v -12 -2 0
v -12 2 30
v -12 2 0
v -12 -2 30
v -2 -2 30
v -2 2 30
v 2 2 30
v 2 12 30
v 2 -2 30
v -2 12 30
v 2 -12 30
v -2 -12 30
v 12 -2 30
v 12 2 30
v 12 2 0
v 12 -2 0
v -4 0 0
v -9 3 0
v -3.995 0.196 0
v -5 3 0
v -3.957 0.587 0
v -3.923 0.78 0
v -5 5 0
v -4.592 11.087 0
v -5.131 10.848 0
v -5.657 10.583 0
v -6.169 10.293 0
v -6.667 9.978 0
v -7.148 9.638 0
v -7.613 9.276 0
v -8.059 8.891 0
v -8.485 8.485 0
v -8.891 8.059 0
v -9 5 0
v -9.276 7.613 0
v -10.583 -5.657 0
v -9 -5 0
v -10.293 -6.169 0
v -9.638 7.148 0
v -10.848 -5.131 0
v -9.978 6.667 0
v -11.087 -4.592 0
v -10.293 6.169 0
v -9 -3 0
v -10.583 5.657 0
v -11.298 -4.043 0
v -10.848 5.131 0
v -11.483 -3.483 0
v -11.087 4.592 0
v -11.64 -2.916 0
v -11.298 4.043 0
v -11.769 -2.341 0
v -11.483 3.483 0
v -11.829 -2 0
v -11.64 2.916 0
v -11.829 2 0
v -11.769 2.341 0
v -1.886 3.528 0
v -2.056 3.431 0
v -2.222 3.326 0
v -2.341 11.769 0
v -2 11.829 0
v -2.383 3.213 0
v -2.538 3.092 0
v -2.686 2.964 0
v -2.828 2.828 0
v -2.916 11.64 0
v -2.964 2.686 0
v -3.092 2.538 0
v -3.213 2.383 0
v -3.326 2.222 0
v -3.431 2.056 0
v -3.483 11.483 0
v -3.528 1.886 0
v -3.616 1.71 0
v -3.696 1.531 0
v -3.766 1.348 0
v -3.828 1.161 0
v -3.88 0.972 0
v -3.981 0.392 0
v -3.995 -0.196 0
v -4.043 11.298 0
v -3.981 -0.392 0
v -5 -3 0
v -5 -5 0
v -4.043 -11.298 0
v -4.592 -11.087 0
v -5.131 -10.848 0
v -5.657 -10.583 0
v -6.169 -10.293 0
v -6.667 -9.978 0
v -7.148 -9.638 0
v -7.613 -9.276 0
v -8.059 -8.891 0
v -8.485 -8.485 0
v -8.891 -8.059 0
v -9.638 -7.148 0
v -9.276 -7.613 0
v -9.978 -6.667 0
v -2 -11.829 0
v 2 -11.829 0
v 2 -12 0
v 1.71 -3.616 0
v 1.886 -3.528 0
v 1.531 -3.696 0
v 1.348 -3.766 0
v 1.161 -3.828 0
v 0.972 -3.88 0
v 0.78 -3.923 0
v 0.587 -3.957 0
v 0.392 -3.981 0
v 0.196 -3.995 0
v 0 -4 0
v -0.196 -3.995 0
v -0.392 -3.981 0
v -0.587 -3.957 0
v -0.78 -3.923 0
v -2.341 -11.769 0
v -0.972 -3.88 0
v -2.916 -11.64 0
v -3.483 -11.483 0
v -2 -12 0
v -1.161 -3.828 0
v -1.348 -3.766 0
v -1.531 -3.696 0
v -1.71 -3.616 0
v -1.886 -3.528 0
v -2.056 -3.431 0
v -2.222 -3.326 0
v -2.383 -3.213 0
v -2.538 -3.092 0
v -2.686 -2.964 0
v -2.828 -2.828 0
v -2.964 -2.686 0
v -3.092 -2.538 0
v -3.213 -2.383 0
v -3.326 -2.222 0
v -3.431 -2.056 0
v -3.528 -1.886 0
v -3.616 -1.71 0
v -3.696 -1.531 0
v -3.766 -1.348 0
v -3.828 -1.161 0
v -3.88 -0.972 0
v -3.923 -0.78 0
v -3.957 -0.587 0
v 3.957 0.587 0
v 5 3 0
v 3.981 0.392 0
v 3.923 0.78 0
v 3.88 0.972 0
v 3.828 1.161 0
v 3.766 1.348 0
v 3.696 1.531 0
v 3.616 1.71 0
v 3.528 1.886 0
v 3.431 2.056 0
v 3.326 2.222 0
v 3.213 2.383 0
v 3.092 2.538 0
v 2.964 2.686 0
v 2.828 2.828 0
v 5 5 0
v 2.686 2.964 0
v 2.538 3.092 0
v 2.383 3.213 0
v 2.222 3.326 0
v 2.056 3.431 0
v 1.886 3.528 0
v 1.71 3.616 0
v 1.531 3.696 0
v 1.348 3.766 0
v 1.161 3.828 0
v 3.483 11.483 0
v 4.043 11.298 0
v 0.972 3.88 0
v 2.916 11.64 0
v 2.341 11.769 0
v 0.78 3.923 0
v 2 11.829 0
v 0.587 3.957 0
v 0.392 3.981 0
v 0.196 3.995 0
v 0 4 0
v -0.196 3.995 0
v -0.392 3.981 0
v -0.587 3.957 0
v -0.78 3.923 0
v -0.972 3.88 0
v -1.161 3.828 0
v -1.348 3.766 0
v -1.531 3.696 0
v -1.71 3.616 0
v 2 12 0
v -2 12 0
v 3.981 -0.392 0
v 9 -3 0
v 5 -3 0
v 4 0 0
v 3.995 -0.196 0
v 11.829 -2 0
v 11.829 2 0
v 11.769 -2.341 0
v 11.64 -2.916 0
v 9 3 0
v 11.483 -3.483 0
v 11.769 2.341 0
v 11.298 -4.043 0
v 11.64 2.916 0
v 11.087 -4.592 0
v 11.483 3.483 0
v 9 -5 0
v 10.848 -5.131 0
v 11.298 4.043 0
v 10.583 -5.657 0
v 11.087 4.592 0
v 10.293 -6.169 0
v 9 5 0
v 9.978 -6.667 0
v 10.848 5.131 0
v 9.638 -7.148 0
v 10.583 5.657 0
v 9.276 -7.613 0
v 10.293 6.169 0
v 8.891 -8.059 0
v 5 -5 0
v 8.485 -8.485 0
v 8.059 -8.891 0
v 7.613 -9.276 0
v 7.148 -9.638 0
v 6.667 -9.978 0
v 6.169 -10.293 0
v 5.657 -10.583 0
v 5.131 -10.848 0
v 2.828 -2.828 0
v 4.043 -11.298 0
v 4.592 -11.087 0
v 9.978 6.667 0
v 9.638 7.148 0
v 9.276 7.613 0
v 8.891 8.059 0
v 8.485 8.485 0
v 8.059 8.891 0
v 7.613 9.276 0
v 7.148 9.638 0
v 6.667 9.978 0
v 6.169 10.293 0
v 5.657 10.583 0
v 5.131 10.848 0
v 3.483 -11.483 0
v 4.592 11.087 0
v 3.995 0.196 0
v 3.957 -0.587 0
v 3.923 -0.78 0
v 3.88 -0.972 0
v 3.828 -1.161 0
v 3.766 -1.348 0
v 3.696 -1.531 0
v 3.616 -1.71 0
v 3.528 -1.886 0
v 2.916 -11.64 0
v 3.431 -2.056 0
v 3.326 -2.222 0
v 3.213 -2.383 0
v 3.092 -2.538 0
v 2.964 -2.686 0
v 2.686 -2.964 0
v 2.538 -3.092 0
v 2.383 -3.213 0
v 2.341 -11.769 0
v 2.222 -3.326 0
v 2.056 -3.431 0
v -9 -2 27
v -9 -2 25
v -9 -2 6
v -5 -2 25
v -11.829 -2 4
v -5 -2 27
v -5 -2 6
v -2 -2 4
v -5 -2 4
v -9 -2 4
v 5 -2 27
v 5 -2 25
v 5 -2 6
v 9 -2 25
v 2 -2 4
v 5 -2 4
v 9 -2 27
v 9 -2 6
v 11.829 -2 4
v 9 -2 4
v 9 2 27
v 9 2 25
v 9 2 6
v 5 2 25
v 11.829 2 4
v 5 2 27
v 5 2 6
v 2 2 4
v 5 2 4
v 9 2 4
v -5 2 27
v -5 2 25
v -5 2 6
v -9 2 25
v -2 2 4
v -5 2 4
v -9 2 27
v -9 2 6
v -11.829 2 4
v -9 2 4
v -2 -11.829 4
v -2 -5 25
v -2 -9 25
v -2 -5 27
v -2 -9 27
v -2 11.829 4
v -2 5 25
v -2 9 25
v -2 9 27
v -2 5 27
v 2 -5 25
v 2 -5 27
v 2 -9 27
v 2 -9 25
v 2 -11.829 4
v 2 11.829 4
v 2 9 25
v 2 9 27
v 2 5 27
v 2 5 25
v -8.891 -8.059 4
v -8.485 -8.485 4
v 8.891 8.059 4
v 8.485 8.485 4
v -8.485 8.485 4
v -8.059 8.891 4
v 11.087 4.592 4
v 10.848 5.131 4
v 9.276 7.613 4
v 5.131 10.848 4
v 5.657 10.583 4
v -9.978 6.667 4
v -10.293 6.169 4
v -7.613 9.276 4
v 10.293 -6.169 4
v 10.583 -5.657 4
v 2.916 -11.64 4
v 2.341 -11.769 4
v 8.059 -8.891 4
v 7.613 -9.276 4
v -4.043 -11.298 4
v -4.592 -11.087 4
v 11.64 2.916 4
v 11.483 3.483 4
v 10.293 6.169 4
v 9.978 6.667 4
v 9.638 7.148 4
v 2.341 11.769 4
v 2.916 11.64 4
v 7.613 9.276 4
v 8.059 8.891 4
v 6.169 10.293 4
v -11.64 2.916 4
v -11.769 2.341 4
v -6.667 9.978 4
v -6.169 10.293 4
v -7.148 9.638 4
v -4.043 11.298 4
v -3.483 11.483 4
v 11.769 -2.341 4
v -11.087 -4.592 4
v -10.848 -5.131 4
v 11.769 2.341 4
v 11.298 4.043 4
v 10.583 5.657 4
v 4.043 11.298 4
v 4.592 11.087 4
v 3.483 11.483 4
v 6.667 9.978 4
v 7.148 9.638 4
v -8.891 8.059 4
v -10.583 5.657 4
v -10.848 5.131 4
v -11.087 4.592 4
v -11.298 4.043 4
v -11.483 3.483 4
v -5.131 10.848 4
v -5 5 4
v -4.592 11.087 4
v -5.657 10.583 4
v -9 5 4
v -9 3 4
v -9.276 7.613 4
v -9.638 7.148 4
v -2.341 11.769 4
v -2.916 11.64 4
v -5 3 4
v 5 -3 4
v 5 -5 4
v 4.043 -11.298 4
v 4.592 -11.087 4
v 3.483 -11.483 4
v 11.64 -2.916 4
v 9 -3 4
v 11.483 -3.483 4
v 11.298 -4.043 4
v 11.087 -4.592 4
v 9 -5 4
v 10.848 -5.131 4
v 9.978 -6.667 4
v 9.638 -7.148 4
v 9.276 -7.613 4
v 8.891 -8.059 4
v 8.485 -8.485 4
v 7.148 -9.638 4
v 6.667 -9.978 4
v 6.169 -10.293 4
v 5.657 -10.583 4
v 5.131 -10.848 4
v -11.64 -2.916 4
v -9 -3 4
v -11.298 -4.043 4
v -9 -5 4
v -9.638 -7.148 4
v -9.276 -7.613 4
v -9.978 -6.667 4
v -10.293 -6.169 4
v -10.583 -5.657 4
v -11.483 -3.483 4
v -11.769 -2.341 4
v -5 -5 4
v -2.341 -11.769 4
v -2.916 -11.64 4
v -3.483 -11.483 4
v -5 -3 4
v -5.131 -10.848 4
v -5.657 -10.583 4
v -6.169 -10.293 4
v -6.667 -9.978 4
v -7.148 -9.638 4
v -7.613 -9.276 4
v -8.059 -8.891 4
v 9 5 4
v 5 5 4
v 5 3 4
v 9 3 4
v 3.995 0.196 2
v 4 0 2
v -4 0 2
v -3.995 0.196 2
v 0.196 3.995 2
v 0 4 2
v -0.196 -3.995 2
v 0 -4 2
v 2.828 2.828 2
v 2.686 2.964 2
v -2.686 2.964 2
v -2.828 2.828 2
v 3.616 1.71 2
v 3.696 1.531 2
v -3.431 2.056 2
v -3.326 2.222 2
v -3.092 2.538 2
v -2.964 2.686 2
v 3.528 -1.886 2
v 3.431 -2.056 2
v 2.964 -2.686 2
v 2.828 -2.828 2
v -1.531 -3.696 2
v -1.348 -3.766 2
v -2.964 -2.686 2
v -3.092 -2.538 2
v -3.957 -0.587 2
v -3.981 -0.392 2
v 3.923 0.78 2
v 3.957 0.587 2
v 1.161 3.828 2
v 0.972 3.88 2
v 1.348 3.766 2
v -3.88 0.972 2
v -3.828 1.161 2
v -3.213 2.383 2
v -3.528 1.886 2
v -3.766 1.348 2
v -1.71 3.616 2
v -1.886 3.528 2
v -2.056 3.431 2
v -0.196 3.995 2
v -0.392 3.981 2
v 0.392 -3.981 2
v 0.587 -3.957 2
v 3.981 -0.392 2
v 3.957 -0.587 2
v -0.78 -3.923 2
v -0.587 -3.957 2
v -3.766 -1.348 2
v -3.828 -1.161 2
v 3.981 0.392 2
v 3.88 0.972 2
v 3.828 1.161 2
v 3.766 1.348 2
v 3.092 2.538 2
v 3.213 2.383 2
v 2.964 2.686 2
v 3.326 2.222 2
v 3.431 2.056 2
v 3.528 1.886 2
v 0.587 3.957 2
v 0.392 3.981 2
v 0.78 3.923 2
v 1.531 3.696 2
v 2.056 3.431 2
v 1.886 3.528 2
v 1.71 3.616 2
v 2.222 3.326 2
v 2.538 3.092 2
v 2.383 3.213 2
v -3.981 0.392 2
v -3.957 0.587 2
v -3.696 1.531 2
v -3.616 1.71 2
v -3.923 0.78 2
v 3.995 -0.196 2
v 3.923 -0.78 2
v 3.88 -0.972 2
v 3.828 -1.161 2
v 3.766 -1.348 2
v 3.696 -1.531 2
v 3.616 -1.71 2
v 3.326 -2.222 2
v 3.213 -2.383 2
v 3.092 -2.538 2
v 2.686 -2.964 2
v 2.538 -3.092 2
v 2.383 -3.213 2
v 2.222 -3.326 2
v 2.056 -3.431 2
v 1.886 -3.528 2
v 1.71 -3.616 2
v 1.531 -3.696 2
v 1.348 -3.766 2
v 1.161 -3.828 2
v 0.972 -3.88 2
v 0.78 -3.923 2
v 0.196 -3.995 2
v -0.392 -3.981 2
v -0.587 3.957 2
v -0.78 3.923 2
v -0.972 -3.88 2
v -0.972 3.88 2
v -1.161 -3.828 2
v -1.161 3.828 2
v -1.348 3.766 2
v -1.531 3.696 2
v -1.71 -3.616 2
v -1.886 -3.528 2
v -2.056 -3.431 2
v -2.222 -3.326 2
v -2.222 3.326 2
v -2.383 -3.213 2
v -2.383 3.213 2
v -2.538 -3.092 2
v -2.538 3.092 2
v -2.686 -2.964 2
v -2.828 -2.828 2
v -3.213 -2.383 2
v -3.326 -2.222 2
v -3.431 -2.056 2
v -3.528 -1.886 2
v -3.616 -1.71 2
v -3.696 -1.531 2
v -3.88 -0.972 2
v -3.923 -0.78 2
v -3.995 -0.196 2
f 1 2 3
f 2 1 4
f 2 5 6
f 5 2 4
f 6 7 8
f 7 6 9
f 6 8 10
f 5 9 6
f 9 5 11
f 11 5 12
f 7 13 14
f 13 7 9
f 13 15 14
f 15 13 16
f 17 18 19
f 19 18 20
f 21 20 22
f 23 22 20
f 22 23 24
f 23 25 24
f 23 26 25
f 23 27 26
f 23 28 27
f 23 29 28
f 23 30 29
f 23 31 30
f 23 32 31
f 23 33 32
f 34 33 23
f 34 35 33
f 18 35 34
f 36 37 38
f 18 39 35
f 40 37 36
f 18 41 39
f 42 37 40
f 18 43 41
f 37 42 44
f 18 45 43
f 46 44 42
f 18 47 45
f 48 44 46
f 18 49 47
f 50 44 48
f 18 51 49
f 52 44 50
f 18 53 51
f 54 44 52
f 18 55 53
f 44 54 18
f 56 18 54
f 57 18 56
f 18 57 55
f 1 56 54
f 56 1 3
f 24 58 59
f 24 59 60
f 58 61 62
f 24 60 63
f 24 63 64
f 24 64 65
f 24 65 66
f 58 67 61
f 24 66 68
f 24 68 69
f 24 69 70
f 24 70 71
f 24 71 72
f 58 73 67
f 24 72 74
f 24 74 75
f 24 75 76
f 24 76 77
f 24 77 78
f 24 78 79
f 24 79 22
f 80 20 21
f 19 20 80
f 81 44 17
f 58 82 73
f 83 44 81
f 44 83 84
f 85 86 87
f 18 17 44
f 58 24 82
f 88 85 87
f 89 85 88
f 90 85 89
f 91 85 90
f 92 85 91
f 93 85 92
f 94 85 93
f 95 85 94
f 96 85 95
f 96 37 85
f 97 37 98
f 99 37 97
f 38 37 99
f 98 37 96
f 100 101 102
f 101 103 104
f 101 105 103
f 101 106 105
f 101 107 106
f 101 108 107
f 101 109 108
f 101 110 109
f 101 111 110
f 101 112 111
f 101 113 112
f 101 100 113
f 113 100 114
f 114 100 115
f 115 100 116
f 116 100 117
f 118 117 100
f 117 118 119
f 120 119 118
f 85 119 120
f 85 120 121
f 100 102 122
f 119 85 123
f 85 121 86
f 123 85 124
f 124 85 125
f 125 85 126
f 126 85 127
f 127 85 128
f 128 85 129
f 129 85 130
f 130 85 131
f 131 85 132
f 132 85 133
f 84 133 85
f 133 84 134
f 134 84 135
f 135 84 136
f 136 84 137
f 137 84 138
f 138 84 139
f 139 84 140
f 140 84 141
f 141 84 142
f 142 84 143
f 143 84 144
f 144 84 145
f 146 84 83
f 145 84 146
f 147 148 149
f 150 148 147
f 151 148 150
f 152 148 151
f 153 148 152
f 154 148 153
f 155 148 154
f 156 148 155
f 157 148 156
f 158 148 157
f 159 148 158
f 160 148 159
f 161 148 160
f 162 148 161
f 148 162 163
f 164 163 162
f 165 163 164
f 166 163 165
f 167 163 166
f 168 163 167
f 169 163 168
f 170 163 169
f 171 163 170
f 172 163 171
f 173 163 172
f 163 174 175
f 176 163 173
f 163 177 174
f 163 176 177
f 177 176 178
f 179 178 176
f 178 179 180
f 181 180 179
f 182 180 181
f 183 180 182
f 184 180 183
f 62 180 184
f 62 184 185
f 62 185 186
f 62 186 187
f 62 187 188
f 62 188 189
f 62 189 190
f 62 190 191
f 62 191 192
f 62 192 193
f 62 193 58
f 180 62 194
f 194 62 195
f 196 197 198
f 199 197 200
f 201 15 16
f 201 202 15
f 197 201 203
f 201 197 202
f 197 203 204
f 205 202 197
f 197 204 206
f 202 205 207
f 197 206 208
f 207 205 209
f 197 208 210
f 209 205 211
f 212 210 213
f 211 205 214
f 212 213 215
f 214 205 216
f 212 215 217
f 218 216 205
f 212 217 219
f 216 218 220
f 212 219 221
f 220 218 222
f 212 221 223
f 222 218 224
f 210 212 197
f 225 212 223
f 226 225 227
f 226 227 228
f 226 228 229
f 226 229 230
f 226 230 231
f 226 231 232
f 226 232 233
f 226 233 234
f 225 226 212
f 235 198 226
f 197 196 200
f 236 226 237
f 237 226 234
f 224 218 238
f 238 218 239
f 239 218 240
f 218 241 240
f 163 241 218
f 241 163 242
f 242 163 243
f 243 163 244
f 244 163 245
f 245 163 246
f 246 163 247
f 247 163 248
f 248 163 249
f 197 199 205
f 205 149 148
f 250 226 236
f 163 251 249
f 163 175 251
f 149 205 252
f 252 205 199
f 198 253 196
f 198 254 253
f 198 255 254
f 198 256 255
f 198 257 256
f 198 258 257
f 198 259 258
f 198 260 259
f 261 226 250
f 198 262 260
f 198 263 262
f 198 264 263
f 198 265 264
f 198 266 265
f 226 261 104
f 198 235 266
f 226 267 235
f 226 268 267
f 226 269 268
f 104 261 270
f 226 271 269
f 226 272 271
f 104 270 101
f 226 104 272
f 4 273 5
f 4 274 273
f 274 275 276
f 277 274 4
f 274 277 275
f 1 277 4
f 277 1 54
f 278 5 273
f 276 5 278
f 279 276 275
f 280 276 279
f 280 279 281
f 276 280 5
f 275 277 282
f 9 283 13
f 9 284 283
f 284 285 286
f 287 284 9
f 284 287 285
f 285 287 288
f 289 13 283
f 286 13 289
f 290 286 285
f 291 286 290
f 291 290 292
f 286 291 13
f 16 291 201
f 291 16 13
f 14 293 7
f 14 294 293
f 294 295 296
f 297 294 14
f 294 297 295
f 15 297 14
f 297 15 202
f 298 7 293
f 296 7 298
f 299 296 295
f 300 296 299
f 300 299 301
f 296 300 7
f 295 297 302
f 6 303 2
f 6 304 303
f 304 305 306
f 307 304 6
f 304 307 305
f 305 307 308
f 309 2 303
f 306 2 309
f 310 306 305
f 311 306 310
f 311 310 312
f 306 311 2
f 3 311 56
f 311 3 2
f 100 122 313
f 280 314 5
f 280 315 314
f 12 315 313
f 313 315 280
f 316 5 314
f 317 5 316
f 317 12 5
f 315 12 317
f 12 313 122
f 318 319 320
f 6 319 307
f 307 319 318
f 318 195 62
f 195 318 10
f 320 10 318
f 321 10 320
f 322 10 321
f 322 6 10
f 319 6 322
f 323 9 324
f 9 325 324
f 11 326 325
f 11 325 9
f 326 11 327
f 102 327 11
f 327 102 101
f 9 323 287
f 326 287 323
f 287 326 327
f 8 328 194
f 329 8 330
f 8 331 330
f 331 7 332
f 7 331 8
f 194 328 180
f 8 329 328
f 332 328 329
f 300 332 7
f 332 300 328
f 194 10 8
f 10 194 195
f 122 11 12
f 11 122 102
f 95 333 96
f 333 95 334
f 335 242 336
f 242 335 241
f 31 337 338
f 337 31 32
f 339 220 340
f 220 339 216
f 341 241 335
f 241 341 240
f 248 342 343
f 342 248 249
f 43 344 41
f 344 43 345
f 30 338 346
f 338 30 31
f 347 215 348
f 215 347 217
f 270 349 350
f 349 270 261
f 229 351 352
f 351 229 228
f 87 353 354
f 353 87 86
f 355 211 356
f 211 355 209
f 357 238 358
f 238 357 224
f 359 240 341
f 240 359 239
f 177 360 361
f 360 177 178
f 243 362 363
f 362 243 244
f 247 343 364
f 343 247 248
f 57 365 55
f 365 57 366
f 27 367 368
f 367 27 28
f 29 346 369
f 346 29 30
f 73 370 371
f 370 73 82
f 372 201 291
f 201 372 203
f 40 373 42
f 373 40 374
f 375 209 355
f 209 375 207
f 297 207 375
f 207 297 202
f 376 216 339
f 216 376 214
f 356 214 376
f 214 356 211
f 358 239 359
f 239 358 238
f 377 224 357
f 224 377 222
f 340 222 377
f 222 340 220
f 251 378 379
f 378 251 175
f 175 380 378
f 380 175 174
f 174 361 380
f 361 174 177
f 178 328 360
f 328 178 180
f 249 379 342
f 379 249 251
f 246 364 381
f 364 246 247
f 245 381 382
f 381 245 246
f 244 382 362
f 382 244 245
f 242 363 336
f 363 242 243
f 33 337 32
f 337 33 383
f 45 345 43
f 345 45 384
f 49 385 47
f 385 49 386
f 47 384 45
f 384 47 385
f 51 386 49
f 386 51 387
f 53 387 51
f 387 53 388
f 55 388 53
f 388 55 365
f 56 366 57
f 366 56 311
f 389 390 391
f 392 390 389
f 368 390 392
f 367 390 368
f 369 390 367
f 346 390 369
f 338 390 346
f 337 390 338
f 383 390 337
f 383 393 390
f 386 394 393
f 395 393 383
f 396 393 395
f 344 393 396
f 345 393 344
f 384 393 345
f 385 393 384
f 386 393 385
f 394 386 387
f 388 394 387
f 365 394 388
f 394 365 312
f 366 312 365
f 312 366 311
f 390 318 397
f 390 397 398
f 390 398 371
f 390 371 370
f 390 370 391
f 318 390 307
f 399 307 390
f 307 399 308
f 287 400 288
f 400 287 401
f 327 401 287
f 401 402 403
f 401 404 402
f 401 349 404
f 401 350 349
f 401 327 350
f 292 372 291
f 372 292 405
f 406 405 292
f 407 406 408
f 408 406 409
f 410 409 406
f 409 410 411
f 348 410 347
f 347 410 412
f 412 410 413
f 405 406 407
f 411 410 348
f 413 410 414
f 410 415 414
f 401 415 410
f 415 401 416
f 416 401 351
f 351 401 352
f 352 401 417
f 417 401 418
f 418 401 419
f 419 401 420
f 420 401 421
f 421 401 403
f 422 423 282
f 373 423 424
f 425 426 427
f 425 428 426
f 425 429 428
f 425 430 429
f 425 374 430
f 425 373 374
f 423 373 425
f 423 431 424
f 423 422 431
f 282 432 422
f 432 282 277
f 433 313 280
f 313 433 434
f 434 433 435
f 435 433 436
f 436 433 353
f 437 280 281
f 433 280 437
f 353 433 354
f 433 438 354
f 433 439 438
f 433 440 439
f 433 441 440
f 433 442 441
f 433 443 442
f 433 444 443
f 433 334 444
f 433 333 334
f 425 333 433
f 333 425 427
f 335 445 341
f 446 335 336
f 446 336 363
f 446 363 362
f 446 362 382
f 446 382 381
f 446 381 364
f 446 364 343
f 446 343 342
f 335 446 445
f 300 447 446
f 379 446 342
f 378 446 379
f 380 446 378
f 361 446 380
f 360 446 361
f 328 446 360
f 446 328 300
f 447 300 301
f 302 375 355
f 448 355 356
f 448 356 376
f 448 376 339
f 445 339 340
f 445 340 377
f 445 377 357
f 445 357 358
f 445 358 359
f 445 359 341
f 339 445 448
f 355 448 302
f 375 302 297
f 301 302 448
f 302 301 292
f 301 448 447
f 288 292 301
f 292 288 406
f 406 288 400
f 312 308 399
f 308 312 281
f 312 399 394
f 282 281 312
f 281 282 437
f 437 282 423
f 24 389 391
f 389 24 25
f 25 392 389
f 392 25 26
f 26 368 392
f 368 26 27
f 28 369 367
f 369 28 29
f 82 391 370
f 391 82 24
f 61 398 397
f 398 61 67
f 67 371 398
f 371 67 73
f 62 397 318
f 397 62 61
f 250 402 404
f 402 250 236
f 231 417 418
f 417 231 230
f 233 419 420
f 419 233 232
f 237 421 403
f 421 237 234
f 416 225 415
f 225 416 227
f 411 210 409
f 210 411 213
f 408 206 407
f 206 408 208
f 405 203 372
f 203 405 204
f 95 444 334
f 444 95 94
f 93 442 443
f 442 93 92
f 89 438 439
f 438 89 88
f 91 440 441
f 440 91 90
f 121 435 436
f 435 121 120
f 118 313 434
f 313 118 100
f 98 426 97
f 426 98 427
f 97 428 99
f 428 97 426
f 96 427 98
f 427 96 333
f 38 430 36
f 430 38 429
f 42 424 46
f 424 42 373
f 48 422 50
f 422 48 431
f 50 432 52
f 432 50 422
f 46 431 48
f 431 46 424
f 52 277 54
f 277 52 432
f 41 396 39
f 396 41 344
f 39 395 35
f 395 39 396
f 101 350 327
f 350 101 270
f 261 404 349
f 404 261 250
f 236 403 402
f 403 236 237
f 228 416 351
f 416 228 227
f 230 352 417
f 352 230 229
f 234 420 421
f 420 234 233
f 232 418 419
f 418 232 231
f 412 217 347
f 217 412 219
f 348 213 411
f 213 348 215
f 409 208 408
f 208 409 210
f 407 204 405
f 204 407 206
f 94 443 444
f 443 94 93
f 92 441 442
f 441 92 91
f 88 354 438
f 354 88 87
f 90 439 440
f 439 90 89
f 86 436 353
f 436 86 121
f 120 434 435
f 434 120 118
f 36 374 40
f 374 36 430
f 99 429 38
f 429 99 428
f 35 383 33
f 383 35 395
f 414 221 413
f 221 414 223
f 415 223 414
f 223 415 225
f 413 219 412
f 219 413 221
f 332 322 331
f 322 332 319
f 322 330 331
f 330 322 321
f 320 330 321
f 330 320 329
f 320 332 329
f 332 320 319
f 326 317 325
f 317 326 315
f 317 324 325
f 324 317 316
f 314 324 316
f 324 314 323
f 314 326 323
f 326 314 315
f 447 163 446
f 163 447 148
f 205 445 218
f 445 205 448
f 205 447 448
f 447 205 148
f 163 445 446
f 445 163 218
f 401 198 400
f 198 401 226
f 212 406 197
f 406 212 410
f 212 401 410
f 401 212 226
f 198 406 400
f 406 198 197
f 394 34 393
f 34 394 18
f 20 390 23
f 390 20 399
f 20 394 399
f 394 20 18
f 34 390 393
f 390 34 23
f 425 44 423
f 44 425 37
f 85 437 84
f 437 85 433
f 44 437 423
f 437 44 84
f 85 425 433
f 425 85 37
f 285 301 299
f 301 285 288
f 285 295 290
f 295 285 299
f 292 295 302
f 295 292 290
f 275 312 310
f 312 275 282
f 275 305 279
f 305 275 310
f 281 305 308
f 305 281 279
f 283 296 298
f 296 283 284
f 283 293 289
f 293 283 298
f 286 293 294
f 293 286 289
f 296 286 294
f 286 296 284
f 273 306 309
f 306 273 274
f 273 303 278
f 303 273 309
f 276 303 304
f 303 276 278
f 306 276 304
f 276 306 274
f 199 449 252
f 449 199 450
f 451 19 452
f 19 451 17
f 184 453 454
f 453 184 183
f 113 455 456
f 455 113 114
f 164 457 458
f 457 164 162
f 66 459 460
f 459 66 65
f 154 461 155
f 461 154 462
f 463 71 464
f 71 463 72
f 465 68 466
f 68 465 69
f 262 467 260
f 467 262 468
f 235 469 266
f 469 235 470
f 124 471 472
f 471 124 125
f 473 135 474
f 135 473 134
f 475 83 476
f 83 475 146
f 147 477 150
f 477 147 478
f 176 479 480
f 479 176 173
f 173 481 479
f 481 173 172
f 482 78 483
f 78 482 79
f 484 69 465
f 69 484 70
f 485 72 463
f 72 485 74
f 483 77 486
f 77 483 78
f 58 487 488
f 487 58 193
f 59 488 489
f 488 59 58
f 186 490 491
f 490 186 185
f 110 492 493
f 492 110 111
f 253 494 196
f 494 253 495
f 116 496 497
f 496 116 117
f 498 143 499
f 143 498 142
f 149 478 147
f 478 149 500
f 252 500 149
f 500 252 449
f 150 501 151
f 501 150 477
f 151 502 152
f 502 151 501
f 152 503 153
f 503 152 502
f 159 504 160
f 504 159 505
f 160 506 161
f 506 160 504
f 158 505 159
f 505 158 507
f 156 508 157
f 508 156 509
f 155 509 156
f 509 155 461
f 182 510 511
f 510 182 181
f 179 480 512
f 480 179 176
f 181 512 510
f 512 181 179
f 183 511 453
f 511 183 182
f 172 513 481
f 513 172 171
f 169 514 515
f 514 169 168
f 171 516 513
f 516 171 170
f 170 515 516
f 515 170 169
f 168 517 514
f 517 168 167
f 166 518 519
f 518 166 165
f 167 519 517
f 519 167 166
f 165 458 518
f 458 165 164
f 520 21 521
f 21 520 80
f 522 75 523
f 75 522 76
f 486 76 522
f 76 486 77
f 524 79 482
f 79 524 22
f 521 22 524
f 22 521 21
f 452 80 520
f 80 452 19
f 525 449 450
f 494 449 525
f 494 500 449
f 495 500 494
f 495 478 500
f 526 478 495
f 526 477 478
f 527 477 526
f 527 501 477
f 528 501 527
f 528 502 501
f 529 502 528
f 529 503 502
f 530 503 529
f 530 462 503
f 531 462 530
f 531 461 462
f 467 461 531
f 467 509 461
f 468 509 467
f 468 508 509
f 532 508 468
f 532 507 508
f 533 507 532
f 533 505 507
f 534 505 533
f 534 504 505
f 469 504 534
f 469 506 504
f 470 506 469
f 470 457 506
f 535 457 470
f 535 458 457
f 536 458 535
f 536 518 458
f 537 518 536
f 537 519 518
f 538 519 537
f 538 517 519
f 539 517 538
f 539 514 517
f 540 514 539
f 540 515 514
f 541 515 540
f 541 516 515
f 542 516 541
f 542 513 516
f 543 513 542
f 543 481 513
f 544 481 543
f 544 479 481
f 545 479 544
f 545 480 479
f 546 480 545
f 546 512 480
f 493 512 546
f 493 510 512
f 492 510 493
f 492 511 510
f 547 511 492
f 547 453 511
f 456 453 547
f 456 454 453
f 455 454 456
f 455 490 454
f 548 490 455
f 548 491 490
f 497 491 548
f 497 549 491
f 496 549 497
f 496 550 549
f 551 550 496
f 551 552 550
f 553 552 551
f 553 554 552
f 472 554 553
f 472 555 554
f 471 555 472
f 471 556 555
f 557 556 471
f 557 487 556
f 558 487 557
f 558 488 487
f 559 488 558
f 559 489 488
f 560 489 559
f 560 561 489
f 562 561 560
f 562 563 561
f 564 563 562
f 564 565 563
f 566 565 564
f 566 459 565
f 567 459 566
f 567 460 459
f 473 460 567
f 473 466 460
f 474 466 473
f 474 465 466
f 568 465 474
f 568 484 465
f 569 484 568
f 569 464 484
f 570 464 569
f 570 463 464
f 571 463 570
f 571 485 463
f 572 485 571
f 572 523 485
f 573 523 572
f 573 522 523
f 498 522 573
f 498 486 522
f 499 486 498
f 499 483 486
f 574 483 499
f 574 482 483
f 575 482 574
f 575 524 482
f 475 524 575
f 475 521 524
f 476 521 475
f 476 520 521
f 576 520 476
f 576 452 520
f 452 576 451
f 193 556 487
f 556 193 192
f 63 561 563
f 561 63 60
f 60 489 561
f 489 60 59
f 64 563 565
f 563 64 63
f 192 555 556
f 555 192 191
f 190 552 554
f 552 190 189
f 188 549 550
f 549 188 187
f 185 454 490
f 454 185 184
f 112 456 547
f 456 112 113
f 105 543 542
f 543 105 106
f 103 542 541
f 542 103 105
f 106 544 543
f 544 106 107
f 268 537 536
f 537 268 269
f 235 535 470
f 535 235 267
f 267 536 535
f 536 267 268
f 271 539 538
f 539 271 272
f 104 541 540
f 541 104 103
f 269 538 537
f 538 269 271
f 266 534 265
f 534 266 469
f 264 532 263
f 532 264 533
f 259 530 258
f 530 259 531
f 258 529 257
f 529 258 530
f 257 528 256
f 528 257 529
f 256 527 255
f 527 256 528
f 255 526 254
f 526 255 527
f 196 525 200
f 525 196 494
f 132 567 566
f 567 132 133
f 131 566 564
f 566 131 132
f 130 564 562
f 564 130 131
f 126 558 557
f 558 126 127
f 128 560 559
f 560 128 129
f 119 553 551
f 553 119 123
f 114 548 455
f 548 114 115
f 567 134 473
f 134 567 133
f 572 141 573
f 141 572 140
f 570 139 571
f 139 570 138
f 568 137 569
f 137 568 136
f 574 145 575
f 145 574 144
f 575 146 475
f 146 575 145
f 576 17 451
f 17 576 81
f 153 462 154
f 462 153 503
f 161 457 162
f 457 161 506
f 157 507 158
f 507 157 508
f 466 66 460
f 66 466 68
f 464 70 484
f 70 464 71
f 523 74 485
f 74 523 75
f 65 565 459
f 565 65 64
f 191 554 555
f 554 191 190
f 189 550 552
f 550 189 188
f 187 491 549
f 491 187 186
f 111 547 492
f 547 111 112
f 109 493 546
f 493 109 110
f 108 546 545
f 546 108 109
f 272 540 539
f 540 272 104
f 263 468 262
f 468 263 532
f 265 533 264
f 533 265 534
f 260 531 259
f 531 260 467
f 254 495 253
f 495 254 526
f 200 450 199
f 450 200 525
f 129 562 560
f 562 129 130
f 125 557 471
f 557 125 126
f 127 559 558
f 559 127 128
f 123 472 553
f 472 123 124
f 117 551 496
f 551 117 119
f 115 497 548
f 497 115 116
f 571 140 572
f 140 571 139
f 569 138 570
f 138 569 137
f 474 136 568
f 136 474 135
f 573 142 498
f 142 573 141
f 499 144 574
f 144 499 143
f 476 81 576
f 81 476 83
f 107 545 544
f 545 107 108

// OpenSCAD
$fn = 128;

h = 30;
w = 24;
t = 4;

difference()
{
    union()
    {
        translate([-12,-2,0])
            cube([w, t, h], center = false);

        translate([-2,-12,0]) /*H Clamp holes*/
            cube([t, w, h], center = false);

        translate([0, 0,0])
            cylinder(h = t, r = w/2, center = false);
    }

    /*V Clamp holes*/
    translate([5,3,-10])
        cube(size=[4,2,20]);

    translate([5,-3-2,-10])
        cube(size=[4,2,20]);

    translate([-9,3,-10])
        cube(size=[4,2,20]);

    translate([-9,-3-2,-10])
       cube(size=[4,2,20]);

    /*H Clamp holes*/
    translate([5,-3-2,4])
        cube([4,10,2], center=false);

    translate([-9,-3-2,4])
        cube([4,10,2], center=false);


    /*Top holes*/
    translate([5,-3-2,25])
        cube([4,10,2], center=false);

    translate([-9,-3-2,25])
        cube([4,10,2], center=false);
    
    rotate(a=90, v=[0,0,1])
    {
        translate([5,-3-2,25])
            cube([4,10,2], center=false);

        translate([-9,-3-2,25])
            cube([4,10,2], center=false);
    }
    
    /*Horn hole*/
    translate([0,0,-2])
        cylinder(h=4, r1=4,r2=4,center=false);
}
